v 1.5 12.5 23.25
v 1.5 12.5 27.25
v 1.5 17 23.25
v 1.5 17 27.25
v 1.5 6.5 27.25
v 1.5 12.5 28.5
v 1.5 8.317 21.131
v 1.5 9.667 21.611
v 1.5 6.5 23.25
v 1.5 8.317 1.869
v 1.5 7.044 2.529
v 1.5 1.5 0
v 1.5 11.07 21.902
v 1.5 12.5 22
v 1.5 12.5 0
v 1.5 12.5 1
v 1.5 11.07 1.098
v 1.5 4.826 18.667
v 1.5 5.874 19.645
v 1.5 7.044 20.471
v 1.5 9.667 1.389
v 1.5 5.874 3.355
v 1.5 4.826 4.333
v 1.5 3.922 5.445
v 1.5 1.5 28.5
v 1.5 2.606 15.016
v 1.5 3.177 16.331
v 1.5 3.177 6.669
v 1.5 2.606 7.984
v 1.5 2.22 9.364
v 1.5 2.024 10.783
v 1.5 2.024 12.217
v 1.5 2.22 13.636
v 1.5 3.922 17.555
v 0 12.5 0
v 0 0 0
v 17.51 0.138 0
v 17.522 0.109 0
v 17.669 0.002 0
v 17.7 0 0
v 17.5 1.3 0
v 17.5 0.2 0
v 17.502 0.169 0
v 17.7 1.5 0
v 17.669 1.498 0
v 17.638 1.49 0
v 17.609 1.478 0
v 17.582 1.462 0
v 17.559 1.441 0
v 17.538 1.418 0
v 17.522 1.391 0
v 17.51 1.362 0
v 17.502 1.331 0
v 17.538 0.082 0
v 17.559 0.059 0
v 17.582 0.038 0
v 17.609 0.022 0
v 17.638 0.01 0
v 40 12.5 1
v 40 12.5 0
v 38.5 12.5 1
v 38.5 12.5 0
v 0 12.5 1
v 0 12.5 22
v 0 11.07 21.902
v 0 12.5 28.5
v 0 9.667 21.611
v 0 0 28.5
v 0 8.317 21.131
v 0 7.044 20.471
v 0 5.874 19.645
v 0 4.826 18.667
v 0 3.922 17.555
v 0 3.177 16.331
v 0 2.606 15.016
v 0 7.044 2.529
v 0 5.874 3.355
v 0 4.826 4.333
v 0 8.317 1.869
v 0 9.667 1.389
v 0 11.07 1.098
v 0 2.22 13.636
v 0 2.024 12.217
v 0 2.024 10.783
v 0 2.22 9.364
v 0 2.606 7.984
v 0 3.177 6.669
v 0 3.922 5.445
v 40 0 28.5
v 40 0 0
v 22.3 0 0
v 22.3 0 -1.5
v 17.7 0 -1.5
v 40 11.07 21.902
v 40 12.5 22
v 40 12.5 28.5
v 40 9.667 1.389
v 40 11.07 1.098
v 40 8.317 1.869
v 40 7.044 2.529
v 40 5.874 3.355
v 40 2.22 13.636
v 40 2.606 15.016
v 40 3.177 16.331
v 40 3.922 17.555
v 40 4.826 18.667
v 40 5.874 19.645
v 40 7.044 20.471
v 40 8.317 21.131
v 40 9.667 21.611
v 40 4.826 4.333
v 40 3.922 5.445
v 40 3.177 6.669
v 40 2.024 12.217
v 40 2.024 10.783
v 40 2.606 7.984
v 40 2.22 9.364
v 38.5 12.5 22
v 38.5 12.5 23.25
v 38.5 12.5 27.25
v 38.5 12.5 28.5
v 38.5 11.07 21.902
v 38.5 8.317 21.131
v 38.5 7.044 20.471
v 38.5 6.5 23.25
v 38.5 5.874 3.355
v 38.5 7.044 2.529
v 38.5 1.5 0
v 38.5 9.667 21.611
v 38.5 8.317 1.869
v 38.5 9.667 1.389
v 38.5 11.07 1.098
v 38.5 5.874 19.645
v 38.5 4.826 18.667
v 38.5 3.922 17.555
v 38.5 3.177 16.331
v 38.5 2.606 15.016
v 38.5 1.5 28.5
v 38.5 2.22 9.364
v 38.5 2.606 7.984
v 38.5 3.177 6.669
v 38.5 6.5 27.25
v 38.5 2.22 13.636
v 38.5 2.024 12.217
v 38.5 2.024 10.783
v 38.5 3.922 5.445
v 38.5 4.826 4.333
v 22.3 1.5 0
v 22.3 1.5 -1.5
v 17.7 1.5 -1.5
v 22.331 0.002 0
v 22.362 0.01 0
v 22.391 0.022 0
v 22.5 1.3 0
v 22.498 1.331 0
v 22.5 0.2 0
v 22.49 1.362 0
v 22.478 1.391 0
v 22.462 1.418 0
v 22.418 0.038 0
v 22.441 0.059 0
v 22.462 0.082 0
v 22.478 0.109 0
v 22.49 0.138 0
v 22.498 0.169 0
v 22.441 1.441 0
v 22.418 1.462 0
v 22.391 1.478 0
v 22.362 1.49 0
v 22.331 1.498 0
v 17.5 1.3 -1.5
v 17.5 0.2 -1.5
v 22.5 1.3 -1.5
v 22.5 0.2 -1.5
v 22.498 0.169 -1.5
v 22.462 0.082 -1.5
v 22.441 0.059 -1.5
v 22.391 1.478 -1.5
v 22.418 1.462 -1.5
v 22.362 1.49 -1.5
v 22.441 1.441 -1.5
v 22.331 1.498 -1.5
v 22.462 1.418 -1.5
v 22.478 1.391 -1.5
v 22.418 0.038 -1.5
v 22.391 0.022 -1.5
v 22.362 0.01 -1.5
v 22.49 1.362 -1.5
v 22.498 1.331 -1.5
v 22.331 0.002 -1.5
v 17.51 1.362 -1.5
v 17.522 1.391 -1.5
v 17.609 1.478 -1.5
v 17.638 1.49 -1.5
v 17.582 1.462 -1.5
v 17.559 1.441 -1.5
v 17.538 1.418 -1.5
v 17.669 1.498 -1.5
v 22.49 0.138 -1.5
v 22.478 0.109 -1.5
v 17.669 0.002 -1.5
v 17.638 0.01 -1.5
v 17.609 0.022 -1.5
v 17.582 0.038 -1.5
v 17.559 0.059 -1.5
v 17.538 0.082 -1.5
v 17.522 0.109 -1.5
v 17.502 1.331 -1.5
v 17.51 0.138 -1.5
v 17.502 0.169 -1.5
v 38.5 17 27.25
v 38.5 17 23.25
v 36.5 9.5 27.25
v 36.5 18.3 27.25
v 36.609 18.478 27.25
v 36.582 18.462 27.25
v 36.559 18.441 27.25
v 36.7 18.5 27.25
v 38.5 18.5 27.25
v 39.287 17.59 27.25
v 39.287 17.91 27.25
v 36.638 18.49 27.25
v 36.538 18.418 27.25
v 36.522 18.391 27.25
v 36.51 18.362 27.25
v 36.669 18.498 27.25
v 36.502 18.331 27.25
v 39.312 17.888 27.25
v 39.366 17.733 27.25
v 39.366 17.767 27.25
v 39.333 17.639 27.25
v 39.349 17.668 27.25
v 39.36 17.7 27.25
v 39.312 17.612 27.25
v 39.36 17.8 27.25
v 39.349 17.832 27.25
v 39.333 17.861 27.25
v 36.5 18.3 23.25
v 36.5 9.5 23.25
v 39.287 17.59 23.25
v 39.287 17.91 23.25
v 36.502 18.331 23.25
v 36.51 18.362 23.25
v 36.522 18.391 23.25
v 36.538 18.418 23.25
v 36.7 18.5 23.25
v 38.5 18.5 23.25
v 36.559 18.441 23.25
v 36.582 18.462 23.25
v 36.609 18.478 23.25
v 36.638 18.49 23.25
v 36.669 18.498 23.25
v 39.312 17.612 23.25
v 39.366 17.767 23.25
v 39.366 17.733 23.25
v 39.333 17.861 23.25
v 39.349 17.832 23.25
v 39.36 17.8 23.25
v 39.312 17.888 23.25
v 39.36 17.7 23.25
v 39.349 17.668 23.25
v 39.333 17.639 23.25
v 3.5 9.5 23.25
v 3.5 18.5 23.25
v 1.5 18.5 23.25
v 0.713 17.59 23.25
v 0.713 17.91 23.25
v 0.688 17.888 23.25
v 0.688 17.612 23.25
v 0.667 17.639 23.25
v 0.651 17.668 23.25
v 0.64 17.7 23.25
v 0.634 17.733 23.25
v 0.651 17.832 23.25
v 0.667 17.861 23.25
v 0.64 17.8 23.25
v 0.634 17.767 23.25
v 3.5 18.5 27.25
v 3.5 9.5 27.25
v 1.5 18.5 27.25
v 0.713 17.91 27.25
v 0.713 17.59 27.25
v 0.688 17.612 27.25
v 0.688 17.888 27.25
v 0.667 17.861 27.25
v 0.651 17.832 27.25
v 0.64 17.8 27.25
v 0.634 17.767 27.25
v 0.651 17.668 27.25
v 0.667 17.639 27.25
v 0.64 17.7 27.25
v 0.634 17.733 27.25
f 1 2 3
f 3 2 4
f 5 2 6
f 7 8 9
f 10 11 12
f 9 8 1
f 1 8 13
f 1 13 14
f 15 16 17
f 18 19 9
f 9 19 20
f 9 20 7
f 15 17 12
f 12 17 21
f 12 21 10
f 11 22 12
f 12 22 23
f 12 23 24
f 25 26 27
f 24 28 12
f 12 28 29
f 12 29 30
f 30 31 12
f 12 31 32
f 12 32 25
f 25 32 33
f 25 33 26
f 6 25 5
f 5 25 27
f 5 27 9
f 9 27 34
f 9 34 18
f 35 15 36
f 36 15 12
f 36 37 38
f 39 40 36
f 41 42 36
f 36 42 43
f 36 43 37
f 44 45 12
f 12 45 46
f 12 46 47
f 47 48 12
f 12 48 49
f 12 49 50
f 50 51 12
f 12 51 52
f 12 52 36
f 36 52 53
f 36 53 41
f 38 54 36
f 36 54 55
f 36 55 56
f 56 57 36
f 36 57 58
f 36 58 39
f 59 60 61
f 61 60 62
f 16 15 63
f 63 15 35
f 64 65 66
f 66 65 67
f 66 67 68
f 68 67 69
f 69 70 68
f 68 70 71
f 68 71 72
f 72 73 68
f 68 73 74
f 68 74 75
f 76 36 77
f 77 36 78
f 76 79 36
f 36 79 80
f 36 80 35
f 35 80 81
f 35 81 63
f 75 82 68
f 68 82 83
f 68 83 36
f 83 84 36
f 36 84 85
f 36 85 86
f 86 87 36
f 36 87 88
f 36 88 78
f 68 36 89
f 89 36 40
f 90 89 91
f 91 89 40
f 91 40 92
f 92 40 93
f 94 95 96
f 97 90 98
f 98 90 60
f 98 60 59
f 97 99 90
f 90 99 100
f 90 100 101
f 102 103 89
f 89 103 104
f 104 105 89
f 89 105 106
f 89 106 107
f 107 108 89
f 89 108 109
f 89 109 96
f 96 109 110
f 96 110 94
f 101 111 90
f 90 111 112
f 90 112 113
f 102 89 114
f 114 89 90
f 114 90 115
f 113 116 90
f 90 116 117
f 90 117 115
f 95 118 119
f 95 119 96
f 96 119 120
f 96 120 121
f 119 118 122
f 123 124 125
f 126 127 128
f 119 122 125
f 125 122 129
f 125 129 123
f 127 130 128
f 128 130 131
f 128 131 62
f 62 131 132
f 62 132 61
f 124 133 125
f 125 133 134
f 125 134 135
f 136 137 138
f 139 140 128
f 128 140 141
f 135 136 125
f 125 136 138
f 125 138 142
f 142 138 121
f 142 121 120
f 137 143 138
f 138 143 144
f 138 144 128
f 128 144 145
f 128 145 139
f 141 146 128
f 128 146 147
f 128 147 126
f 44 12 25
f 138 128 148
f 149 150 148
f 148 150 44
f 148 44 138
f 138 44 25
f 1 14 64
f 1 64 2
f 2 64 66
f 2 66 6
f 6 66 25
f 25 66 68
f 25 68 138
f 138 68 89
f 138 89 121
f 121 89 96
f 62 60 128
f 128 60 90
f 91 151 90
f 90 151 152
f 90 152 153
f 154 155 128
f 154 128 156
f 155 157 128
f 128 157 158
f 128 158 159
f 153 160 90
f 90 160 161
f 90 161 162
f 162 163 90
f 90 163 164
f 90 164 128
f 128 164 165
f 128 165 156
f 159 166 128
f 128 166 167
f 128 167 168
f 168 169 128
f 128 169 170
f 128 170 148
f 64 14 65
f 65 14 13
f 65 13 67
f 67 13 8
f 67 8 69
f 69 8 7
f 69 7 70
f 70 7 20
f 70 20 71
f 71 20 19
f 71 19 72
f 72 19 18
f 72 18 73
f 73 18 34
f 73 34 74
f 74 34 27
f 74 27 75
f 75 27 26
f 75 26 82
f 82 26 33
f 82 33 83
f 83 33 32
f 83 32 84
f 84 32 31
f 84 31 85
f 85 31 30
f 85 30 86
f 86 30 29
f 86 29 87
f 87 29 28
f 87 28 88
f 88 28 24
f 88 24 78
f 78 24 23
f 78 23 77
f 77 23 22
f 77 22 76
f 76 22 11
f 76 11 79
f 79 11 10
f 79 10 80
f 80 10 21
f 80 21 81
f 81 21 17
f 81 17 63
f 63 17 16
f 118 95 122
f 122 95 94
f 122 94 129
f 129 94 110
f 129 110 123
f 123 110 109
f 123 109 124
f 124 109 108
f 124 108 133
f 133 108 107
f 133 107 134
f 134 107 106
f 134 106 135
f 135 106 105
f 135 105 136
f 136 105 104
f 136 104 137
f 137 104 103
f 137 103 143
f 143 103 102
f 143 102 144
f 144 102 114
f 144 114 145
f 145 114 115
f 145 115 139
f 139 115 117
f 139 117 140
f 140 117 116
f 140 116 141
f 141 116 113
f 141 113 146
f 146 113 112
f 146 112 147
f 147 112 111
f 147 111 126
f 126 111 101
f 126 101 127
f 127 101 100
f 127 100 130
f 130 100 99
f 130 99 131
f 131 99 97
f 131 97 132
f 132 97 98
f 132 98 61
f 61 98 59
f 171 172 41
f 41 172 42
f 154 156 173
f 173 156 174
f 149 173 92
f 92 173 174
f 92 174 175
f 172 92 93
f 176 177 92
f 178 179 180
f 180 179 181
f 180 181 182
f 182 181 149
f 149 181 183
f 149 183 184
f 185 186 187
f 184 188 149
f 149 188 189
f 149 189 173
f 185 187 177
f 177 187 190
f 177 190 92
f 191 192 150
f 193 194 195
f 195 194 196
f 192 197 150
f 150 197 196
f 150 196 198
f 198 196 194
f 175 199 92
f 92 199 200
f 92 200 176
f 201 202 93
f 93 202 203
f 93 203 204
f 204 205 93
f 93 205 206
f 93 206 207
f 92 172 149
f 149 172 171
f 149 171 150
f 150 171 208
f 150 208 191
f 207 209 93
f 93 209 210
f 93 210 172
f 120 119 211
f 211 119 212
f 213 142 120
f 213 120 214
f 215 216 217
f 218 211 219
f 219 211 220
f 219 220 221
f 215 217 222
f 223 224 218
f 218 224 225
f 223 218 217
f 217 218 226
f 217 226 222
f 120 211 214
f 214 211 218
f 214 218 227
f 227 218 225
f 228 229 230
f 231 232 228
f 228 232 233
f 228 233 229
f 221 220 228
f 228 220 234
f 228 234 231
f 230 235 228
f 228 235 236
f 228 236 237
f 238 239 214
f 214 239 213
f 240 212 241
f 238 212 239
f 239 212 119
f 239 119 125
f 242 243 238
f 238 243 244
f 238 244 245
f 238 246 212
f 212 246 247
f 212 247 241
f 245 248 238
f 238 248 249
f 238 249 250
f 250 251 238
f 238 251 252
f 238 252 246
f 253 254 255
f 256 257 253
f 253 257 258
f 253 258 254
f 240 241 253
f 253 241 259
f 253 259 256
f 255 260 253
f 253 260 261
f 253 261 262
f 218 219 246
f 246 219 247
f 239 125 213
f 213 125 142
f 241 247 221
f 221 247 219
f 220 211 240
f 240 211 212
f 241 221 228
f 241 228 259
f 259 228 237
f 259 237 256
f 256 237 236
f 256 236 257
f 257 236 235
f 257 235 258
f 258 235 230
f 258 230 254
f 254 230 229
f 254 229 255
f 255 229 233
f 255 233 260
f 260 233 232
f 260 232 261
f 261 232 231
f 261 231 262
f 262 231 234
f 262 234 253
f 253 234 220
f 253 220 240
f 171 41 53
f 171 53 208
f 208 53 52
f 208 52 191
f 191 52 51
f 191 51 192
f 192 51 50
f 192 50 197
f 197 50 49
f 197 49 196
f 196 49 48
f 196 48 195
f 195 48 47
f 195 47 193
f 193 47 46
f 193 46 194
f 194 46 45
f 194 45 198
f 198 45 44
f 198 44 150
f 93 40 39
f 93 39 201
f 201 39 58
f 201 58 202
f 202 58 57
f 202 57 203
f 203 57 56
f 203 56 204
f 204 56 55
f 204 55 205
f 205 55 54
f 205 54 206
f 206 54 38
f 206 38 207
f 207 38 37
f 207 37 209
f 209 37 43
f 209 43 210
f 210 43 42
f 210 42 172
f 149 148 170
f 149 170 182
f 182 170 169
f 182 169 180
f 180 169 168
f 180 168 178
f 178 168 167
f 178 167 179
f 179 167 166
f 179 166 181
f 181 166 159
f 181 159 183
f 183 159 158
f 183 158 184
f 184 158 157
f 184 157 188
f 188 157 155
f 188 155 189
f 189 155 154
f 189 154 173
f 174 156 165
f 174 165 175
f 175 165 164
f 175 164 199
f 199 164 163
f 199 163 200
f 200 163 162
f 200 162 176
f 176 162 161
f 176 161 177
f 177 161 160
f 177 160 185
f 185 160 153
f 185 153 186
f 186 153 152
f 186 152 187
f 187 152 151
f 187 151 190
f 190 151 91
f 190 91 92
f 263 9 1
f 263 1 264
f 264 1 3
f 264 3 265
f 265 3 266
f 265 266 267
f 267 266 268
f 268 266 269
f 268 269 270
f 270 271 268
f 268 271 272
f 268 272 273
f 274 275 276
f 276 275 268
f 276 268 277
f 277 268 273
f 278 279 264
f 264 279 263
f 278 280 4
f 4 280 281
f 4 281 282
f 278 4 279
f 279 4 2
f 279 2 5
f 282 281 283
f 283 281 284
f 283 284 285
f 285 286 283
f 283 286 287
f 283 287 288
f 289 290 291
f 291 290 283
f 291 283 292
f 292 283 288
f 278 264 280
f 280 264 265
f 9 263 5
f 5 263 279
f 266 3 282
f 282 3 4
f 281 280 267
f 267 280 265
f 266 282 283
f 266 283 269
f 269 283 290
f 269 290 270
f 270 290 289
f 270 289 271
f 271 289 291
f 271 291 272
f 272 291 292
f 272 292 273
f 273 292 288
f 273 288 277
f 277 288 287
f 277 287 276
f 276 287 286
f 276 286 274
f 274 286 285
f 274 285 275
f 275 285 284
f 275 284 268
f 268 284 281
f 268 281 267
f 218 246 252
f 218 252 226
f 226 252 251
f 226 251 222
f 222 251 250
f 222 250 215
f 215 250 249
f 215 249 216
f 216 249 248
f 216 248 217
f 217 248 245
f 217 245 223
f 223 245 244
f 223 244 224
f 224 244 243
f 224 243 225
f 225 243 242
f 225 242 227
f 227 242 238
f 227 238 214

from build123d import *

# Parameters (mm, degrees)
EXTRUDE_1_DEPTH        = 28.5
SKETCH_2_R             = 10.5
CUT_EXTRUDE_1_DEPTH    = 87
SKETCH_3_W             = 5
SKETCH_3_H             = 1.5
EXTRUDE_2_DEPTH        = 1.5
FILLET_1_R             = 0.2
EXTRUDE_START          = -3
SKETCH_4_W             = 2
SKETCH_4_H             = 4
EXTRUDE_3_DEPTH        = 9
EXTRUDE_4_DEPTH        = 4
FILLET_2_R             = 0.2
FILLET_1_OF_MIRROR_1_R = 0.2
FILLET_2_OF_MIRROR_1_R = 0.2
FILLET_3_R             = 0.2


with BuildPart() as part:
    # 草图1 → 凸台-拉伸1 (new body)
    with BuildSketch(Plane.XY):
        Polygon((0, 0), (40, 0), (40, 12.5), (38.5, 12.5), (38.5, 1.5), (1.5, 1.5), (1.5, 12.5), (0, 12.5), align=None)
    extrude(amount=EXTRUDE_1_DEPTH)

    # 草图2 → 切除-拉伸1 (cut)
    with BuildSketch(Plane(origin=(40, 0, 0), x_dir=(0, 0, -1), z_dir=(1, 0, 0))):
        with Locations((-11.5, 12.5)):
            Circle(SKETCH_2_R)
    extrude(amount=-CUT_EXTRUDE_1_DEPTH, mode=Mode.SUBTRACT)

    # 草图3 → 凸台-拉伸2 (add)
    with BuildSketch(Plane(origin=(0, 0, 0), x_dir=(-1, 0, 0), z_dir=(0, 0, -1))):
        with Locations((-20, 0.75)):
            Rectangle(SKETCH_3_W, SKETCH_3_H)
    extrude_2 = extrude(amount=EXTRUDE_2_DEPTH)

    # 圆角1
    fillet_1_edges = [part.edges().sort_by_distance(p)[0] for p in [
        (17.5, 0, -0.75),
        (17.5, 1.5, -0.75),
        (22.5, 1.5, -0.75),
        (22.5, 0, -0.75),
    ]]
    fillet(fillet_1_edges, radius=FILLET_1_R)

    # 草图4 → 凸台-拉伸3 (add)
    with BuildSketch(Plane(origin=(0, 12.5, 0), x_dir=(1, 0, 0), z_dir=(0, 1, 0)).offset(EXTRUDE_START)):
        with Locations((37.5, -25.25)):
            Rectangle(SKETCH_4_W, SKETCH_4_H)
    extrude_3 = extrude(amount=EXTRUDE_3_DEPTH)

    # 草图5 → 凸台-拉伸4 (add)
    with BuildSketch(Plane.XY.offset(27.25)):
        Polygon((36.5, 9.5), (38.5, 6.5), (38.5, 9.5), align=None)
        Polygon((38.5, 18.5), (39.5, 17.75), (38.5, 17), align=None)
    extrude_4 = extrude(amount=-EXTRUDE_4_DEPTH)

    # 圆角2
    fillet_2_edges = [part.edges().sort_by_distance(p)[0] for p in [
        (39.5, 17.75, 25.25),
    ]]
    fillet(fillet_2_edges, radius=FILLET_2_R)

    # 镜向1: 凸台-拉伸2, 凸台-拉伸3, 凸台-拉伸4 across plane
    add(extrude_2.mirror(Plane(origin=(20, 0, 0), x_dir=(0, 0, 1), z_dir=(1, 0, 0))))
    add(extrude_3.mirror(Plane(origin=(20, 0, 0), x_dir=(0, 0, 1), z_dir=(1, 0, 0))))
    add(extrude_4.mirror(Plane(origin=(20, 0, 0), x_dir=(0, 0, 1), z_dir=(1, 0, 0))))

    # 圆角1 of 镜向1
    fillet_1_of_mirror_1_edges = [part.edges().sort_by_distance(p)[0] for p in [
        (22.5, 0, -0.75),
        (22.5, 1.5, -0.75),
        (17.5, 1.5, -0.75),
        (17.5, 0, -0.75),
    ]]
    fillet(fillet_1_of_mirror_1_edges, radius=FILLET_1_OF_MIRROR_1_R)

    # 圆角2 of 镜向1
    fillet_2_of_mirror_1_edges = [part.edges().sort_by_distance(p)[0] for p in [
        (0.5, 17.75, 25.25),
    ]]
    fillet(fillet_2_of_mirror_1_edges, radius=FILLET_2_OF_MIRROR_1_R)

    # 圆角3
    fillet_3_edges = [part.edges().sort_by_distance(p)[0] for p in [
        (36.5, 18.5, 25.25),
    ]]
    fillet(fillet_3_edges, radius=FILLET_3_R)


solid = part.part
